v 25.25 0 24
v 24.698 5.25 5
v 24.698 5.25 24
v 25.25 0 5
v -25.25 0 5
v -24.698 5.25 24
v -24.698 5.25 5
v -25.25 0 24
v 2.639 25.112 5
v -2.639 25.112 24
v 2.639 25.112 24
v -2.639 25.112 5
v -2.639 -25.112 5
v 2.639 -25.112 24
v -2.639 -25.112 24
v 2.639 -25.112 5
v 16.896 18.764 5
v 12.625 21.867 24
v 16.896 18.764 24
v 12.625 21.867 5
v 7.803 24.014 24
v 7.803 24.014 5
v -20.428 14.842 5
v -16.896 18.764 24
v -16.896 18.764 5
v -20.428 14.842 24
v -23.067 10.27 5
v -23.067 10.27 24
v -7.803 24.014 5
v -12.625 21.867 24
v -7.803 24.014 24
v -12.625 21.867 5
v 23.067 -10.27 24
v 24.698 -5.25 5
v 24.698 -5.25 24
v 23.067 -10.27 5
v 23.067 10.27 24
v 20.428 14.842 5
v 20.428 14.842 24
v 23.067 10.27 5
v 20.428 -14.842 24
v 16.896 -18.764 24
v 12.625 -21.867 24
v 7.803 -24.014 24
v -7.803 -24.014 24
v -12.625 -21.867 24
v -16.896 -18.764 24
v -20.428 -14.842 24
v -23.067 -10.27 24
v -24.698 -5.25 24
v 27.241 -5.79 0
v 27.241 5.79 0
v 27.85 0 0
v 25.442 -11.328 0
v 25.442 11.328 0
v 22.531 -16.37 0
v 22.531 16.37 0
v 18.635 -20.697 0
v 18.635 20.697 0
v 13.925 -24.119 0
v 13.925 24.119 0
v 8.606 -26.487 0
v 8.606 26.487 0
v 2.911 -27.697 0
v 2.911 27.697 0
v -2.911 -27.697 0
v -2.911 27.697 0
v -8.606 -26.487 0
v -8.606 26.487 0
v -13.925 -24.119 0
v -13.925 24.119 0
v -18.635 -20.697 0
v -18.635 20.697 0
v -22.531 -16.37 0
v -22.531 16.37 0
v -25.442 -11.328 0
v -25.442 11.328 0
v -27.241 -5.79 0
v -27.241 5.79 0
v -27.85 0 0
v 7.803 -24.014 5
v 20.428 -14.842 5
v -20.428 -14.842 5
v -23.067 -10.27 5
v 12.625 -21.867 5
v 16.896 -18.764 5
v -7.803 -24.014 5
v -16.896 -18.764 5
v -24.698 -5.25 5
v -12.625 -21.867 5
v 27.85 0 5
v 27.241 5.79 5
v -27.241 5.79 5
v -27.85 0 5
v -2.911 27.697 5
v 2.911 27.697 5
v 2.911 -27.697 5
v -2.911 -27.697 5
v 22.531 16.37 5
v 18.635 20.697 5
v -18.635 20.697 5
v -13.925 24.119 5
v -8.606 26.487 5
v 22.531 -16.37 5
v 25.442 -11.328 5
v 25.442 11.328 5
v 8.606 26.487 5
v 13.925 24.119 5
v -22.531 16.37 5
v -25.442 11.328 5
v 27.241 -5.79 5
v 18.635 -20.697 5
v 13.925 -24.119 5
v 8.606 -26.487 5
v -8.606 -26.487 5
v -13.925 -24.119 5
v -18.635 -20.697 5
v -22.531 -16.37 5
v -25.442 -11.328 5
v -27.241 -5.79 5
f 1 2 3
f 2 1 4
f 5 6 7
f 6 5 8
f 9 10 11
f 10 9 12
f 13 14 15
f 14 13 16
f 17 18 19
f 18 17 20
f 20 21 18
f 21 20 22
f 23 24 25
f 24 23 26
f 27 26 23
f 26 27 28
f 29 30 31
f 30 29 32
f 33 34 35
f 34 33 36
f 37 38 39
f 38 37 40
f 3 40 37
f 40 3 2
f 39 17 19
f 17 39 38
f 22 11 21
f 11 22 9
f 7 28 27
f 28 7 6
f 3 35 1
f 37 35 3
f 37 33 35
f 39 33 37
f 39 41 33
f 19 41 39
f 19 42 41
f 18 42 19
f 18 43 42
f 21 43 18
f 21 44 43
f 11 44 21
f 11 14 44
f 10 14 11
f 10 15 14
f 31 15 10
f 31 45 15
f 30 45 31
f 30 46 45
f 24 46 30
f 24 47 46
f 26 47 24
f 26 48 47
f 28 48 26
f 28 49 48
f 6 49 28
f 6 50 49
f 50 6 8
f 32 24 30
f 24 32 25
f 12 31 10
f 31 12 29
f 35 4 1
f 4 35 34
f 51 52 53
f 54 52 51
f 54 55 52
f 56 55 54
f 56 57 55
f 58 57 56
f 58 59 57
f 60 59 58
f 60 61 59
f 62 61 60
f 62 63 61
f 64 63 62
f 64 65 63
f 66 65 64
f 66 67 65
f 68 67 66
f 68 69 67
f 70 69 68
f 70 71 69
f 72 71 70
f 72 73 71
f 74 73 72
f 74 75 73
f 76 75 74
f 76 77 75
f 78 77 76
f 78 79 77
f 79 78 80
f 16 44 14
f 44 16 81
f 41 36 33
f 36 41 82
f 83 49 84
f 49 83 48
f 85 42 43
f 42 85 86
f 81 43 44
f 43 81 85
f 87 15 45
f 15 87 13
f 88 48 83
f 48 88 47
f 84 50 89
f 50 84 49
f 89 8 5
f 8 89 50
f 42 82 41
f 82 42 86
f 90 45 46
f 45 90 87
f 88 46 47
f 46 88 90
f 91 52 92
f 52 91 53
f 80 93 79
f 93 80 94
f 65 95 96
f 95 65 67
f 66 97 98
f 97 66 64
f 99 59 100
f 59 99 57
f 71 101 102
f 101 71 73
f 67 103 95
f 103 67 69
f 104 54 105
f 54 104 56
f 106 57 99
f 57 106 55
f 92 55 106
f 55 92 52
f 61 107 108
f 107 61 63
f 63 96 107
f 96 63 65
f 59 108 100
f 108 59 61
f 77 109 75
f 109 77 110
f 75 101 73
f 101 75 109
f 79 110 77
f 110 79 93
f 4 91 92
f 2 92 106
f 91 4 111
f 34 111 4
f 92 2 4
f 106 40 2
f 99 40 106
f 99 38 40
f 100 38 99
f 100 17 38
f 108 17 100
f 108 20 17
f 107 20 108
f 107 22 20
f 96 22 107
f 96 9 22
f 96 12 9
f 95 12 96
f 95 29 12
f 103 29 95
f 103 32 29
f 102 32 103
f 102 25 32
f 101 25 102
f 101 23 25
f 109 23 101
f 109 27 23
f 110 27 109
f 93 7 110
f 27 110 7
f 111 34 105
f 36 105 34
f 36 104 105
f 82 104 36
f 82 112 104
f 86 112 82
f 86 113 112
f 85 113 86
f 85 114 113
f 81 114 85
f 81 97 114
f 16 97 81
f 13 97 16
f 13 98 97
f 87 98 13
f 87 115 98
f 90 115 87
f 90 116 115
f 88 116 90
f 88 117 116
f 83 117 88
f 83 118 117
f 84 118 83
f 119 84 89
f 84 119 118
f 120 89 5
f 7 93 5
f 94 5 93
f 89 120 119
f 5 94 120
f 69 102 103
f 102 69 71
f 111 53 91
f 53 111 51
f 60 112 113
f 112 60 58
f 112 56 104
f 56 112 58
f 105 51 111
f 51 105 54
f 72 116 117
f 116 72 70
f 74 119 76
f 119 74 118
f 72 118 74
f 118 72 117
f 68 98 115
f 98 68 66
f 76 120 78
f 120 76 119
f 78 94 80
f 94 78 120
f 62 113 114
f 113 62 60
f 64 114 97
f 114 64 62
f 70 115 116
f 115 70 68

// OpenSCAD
id = 50.5;
od = 55.7;
d = 19;
lip = 5;
cylinder(h = d+lip, d = id);
cylinder(h = lip, d = od);
